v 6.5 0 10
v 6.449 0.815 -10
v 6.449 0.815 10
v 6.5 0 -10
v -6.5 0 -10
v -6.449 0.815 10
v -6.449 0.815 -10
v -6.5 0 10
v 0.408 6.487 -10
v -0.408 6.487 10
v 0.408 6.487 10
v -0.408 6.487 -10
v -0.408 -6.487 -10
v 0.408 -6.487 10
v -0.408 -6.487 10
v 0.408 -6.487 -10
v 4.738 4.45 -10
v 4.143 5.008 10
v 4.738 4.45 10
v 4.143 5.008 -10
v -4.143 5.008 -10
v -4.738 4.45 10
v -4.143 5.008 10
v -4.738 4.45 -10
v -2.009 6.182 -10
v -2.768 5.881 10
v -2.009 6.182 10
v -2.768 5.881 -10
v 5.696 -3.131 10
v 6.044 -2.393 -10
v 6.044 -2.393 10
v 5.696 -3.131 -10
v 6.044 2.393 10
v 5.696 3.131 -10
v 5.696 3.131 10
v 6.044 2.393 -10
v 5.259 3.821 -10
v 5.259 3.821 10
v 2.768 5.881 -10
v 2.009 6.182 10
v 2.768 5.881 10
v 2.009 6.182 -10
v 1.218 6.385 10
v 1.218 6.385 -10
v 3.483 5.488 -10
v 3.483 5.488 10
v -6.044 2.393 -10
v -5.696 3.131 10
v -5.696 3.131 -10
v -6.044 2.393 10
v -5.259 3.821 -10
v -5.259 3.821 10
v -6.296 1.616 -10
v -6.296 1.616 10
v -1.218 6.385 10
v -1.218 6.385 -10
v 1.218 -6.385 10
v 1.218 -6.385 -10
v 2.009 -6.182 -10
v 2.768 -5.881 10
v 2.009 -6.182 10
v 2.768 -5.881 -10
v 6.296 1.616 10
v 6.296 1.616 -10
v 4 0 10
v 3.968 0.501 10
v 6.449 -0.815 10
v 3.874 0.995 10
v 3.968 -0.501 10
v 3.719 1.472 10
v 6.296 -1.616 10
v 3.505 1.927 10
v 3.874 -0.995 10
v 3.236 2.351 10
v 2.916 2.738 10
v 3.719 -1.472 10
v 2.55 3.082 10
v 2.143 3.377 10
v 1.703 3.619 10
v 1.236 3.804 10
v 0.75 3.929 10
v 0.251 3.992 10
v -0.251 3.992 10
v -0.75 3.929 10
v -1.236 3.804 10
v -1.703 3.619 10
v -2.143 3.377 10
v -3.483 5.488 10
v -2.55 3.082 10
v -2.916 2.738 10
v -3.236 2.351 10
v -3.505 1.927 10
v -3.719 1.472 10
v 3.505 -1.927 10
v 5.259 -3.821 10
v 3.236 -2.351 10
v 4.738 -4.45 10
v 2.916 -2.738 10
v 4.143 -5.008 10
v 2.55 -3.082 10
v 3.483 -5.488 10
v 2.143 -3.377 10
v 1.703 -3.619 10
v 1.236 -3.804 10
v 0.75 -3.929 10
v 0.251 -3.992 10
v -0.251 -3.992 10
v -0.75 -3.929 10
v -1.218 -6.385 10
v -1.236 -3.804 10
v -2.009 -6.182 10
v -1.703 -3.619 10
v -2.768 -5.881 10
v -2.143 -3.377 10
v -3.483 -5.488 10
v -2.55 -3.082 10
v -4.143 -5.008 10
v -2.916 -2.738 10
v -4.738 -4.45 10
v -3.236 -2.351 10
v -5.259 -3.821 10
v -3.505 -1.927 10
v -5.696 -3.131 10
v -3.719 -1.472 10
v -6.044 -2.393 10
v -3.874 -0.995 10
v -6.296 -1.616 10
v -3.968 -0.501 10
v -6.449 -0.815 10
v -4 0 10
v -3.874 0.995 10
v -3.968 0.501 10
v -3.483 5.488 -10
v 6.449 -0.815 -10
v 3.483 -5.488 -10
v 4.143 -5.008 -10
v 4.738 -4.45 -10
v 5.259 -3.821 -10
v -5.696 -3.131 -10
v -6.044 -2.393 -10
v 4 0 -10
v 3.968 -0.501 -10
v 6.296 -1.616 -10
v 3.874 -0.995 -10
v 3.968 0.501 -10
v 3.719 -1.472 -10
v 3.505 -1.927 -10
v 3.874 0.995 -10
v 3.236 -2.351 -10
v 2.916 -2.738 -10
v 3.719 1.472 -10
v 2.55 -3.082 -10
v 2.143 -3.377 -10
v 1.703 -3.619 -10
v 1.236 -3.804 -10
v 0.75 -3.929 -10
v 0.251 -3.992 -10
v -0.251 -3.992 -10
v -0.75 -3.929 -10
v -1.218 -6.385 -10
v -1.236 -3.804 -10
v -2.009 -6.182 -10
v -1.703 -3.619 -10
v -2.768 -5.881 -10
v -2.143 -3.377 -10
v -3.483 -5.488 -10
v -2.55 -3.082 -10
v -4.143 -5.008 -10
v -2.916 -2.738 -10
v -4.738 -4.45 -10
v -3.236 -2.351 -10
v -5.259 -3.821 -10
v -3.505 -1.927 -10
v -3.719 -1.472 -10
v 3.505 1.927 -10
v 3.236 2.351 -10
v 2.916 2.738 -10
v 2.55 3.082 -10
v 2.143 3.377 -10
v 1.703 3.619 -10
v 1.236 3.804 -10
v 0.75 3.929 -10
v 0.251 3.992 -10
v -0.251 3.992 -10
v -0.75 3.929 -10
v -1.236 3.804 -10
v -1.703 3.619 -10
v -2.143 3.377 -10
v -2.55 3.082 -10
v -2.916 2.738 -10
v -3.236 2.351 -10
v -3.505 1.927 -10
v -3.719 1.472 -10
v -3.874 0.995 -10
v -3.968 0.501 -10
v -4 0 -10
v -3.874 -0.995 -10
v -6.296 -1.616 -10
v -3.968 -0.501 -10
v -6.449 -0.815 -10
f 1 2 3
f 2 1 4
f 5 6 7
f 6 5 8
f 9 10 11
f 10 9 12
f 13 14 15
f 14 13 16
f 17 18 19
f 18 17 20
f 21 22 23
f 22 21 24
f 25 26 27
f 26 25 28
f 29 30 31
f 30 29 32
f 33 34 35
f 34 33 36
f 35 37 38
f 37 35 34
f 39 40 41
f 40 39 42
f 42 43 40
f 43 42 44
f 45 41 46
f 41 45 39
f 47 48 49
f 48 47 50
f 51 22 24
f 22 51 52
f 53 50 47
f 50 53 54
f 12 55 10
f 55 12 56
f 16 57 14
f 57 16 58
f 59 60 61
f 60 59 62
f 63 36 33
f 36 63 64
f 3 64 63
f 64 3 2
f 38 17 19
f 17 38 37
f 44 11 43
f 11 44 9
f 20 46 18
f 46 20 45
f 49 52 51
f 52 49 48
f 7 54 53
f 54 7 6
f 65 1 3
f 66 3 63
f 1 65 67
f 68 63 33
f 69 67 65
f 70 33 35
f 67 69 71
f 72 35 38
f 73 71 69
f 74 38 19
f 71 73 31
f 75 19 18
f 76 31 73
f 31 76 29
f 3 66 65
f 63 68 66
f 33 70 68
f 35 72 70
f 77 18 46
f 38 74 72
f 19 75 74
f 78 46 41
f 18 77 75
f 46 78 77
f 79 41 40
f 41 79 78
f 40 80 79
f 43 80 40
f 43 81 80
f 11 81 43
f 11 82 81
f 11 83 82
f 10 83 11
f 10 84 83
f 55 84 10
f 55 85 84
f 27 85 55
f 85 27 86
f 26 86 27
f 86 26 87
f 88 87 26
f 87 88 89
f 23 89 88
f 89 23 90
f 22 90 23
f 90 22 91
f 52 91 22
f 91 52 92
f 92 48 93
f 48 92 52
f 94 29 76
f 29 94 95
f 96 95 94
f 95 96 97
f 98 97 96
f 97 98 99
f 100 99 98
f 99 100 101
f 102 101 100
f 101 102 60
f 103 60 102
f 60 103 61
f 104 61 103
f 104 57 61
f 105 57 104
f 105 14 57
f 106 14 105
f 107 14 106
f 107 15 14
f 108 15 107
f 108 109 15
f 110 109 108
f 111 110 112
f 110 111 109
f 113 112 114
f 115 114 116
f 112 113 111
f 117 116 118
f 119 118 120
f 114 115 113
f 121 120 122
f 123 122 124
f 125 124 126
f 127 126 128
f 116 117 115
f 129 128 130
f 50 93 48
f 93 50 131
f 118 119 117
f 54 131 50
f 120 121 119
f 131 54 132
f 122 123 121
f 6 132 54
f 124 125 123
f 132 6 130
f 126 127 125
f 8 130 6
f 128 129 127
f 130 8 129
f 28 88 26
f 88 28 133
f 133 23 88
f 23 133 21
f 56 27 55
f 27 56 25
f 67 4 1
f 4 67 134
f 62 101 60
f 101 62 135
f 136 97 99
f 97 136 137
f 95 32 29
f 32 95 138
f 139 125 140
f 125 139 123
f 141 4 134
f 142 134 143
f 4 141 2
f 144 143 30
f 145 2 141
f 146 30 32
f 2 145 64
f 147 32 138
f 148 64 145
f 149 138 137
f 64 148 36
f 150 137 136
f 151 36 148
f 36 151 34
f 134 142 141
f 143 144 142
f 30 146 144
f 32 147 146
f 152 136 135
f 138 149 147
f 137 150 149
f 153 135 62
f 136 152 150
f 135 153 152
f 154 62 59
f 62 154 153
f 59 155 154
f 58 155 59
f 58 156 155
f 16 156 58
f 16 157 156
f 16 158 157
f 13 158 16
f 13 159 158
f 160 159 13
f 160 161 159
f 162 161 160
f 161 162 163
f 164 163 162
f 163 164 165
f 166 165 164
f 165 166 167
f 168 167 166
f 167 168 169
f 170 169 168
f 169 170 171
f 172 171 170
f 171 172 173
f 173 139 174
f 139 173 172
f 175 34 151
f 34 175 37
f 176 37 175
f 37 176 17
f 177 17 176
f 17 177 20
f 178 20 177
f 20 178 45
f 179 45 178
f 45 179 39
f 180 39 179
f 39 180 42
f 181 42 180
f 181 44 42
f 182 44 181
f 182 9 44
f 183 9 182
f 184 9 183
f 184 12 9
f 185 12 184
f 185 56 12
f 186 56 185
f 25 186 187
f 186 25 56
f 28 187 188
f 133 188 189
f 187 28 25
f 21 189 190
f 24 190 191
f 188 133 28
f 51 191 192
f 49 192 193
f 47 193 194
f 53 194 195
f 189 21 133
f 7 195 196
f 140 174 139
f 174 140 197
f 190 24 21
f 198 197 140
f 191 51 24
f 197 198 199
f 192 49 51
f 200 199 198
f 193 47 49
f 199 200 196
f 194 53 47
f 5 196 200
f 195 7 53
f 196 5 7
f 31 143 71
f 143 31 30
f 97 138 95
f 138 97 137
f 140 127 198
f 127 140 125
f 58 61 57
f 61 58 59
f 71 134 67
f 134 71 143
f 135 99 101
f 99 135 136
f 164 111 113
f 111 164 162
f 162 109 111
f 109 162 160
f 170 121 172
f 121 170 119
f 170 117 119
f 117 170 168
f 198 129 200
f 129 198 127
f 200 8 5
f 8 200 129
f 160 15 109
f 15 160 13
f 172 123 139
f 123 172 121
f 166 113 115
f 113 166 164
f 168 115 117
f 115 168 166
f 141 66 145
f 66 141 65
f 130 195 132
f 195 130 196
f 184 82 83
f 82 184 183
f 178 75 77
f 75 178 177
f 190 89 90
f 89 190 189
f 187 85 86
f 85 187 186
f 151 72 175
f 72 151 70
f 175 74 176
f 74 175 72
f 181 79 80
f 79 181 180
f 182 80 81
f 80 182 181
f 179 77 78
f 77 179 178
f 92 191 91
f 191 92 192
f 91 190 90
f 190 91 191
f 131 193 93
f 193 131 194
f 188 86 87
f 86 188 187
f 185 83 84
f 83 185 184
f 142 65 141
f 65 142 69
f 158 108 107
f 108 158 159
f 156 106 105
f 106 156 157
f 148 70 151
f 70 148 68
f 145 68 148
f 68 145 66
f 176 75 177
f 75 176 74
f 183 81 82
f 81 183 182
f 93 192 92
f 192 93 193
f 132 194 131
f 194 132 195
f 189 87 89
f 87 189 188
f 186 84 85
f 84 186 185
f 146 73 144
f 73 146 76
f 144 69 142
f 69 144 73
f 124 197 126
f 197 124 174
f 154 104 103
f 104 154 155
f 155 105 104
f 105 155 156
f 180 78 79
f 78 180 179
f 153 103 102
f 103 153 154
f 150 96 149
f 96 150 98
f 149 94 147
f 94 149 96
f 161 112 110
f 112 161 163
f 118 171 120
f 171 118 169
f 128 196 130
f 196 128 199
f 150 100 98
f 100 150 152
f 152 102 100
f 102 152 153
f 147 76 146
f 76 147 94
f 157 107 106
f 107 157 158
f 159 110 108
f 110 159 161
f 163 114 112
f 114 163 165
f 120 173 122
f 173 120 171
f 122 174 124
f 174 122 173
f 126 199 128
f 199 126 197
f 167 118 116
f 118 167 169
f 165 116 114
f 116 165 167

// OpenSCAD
$fn = 50;


difference() {
	union() {
		translate(v = [0, 0, -10.0000000000]) {
			cylinder(h = 20, r = 6.5000000000);
		}
	}
	union() {
		translate(v = [0, 0, -100.0000000000]) {
			cylinder(h = 200, r = 4);
		}
	}
}
